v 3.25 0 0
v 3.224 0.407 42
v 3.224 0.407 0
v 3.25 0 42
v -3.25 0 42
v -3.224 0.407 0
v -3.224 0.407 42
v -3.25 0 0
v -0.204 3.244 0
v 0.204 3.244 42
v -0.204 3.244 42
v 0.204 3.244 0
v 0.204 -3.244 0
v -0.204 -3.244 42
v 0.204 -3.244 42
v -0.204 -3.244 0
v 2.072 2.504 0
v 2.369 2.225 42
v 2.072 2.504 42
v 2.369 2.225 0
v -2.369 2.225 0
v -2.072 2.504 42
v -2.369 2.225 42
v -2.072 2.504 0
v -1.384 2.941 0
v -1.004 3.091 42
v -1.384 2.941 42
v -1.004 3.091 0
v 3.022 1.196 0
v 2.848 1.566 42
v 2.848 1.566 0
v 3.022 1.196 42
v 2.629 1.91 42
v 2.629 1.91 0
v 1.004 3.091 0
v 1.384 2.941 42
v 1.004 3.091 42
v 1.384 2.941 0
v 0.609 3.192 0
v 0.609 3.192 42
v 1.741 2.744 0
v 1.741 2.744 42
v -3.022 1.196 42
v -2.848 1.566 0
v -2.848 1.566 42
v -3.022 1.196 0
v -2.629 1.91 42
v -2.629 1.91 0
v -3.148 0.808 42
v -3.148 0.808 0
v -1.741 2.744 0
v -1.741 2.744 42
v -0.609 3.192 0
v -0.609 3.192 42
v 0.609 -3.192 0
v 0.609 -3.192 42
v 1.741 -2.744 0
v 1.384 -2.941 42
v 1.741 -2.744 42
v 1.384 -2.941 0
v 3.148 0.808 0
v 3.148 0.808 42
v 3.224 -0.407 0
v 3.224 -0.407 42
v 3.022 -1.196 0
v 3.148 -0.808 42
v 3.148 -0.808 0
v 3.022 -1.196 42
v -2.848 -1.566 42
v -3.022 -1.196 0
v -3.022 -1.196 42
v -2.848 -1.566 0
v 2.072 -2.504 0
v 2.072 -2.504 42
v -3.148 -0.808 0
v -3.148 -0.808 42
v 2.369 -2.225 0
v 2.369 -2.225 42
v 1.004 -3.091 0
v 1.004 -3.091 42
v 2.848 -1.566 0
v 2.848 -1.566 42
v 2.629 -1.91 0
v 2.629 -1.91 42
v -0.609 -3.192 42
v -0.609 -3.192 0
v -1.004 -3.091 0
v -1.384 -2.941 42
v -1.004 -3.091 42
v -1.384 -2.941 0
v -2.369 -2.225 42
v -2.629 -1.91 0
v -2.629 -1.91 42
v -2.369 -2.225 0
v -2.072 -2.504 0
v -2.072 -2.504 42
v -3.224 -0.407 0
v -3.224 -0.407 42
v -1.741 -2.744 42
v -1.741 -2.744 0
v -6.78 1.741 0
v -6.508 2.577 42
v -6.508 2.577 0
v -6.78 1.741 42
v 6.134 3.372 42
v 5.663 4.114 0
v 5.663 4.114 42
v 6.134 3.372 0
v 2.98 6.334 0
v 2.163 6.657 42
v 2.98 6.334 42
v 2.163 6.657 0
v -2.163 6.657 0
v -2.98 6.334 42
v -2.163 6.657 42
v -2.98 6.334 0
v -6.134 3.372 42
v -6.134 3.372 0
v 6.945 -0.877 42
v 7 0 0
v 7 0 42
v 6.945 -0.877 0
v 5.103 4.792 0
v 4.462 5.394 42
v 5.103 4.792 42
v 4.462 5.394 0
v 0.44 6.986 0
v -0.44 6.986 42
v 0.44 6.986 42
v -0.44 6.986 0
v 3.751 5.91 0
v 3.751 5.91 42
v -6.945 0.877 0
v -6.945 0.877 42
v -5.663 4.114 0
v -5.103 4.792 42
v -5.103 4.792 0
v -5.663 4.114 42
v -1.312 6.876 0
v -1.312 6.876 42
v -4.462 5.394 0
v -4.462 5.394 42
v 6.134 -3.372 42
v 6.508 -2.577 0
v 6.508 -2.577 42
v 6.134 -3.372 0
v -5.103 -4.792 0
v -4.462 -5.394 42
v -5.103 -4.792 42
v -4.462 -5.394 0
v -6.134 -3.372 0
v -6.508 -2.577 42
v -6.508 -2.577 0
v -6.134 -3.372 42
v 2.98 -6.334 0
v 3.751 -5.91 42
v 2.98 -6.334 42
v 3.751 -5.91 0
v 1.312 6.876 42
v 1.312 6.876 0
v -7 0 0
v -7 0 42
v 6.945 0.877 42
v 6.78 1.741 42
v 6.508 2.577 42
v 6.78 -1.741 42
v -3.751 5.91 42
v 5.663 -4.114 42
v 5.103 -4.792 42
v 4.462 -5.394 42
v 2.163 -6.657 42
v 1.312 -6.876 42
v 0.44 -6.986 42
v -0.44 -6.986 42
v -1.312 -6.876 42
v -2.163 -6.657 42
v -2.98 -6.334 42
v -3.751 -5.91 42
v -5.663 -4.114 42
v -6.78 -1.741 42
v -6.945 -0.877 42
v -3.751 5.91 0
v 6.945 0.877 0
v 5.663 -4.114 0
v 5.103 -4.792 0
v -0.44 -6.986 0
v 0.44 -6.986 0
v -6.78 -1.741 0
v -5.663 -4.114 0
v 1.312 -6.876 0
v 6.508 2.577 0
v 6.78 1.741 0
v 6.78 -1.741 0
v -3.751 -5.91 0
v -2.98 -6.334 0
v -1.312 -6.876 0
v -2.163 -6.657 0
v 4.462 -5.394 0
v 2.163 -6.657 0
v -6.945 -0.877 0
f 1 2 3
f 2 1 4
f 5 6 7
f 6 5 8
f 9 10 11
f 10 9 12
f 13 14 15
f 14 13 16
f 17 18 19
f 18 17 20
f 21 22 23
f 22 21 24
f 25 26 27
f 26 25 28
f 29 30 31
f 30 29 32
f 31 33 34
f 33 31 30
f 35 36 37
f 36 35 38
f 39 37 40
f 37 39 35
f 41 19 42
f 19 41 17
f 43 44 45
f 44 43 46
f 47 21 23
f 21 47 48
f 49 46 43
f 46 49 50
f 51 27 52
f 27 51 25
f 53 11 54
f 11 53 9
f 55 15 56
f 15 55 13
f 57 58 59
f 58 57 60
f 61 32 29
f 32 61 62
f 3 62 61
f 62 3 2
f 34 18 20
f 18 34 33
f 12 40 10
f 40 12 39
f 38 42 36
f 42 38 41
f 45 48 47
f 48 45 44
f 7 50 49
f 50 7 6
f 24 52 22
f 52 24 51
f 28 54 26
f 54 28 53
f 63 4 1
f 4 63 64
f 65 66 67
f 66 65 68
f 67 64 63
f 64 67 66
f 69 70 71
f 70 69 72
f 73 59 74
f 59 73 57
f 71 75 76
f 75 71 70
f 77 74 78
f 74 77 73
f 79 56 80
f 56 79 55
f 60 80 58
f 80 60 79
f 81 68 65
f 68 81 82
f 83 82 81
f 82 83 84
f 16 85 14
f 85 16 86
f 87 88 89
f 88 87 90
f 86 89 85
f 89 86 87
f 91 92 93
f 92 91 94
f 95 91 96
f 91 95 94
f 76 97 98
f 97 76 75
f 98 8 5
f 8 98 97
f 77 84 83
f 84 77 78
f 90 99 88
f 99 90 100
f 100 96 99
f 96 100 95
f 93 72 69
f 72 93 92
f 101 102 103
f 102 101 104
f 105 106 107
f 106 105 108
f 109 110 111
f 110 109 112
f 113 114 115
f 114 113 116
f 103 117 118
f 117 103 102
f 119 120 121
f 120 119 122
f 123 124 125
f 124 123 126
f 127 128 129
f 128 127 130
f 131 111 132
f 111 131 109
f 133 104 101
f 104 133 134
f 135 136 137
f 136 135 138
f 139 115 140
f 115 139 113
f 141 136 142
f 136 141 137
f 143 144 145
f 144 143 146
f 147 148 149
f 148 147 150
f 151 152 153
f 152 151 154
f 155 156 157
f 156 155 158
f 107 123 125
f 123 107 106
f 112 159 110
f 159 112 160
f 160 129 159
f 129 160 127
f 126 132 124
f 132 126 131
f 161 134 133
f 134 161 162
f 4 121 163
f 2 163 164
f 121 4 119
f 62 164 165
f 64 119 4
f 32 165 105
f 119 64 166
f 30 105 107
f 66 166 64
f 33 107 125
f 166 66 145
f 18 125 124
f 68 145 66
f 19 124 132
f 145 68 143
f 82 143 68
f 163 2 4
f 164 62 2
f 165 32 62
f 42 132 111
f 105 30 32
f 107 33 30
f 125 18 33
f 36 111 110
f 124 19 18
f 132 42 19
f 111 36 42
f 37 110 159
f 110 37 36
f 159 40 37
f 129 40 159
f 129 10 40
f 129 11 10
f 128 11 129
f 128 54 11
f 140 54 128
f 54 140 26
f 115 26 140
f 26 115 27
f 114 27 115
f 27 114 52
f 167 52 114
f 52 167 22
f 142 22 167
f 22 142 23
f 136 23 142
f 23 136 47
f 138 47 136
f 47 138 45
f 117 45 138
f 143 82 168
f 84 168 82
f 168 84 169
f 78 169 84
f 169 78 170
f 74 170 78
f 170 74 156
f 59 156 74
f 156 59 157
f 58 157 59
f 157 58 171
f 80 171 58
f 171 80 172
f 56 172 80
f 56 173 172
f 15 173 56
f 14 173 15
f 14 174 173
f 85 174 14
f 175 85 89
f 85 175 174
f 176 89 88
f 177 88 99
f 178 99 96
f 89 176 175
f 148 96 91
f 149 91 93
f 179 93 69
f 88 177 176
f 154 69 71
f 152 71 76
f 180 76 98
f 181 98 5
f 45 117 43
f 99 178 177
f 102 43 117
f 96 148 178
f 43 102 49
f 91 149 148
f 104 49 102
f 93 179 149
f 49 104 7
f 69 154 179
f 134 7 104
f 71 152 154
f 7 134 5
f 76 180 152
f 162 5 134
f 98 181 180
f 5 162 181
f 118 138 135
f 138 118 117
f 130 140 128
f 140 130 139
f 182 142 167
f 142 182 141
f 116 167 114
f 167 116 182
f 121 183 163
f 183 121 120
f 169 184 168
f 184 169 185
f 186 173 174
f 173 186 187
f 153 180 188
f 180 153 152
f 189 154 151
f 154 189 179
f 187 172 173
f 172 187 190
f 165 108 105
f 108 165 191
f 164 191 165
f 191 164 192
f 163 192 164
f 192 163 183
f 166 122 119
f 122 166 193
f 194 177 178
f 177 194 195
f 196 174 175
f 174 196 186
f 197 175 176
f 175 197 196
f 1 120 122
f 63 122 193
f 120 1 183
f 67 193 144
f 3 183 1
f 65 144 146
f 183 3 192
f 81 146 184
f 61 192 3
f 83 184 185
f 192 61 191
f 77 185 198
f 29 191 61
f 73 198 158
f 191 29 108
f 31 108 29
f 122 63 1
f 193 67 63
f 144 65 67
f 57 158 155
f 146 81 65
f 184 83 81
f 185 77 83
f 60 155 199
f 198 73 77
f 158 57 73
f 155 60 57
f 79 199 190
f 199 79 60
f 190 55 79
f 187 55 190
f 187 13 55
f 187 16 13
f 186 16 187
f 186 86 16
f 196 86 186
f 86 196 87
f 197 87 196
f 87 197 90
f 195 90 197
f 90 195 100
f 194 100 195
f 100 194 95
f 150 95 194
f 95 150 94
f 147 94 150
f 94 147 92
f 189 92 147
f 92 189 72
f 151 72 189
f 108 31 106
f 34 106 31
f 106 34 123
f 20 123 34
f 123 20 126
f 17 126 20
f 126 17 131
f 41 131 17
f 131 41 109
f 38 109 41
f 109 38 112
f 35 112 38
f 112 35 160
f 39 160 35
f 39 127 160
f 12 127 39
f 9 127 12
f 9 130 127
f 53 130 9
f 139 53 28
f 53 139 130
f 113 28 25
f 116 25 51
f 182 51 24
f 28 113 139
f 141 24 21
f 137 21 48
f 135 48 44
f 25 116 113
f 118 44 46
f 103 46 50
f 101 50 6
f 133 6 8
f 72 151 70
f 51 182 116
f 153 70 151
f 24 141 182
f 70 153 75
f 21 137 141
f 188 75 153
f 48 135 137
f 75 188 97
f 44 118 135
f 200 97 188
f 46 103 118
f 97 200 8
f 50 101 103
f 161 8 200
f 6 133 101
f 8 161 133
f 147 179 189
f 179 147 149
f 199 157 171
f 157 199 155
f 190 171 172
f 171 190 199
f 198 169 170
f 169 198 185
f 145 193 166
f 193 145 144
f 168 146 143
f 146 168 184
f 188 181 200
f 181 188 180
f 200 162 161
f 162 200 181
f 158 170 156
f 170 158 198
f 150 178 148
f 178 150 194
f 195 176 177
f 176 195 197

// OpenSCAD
$fn = 50;


difference() {
	union() {
		cylinder(h = 42, r = 7.0000000000);
	}
	union() {
		cylinder(h = 42, r = 3.2500000000);
		cylinder(h = 42, r = 3.2500000000);
		cylinder(h = 42, r = 1.8000000000);
		cylinder(h = 42, r = 1.8000000000);
		cylinder(h = 42, r = 1.8000000000);
		cylinder(h = 42, r = 1.8000000000);
		cylinder(h = 42, r = 1.8000000000);
		cylinder(h = 42, r = 1.8000000000);
	}
}
